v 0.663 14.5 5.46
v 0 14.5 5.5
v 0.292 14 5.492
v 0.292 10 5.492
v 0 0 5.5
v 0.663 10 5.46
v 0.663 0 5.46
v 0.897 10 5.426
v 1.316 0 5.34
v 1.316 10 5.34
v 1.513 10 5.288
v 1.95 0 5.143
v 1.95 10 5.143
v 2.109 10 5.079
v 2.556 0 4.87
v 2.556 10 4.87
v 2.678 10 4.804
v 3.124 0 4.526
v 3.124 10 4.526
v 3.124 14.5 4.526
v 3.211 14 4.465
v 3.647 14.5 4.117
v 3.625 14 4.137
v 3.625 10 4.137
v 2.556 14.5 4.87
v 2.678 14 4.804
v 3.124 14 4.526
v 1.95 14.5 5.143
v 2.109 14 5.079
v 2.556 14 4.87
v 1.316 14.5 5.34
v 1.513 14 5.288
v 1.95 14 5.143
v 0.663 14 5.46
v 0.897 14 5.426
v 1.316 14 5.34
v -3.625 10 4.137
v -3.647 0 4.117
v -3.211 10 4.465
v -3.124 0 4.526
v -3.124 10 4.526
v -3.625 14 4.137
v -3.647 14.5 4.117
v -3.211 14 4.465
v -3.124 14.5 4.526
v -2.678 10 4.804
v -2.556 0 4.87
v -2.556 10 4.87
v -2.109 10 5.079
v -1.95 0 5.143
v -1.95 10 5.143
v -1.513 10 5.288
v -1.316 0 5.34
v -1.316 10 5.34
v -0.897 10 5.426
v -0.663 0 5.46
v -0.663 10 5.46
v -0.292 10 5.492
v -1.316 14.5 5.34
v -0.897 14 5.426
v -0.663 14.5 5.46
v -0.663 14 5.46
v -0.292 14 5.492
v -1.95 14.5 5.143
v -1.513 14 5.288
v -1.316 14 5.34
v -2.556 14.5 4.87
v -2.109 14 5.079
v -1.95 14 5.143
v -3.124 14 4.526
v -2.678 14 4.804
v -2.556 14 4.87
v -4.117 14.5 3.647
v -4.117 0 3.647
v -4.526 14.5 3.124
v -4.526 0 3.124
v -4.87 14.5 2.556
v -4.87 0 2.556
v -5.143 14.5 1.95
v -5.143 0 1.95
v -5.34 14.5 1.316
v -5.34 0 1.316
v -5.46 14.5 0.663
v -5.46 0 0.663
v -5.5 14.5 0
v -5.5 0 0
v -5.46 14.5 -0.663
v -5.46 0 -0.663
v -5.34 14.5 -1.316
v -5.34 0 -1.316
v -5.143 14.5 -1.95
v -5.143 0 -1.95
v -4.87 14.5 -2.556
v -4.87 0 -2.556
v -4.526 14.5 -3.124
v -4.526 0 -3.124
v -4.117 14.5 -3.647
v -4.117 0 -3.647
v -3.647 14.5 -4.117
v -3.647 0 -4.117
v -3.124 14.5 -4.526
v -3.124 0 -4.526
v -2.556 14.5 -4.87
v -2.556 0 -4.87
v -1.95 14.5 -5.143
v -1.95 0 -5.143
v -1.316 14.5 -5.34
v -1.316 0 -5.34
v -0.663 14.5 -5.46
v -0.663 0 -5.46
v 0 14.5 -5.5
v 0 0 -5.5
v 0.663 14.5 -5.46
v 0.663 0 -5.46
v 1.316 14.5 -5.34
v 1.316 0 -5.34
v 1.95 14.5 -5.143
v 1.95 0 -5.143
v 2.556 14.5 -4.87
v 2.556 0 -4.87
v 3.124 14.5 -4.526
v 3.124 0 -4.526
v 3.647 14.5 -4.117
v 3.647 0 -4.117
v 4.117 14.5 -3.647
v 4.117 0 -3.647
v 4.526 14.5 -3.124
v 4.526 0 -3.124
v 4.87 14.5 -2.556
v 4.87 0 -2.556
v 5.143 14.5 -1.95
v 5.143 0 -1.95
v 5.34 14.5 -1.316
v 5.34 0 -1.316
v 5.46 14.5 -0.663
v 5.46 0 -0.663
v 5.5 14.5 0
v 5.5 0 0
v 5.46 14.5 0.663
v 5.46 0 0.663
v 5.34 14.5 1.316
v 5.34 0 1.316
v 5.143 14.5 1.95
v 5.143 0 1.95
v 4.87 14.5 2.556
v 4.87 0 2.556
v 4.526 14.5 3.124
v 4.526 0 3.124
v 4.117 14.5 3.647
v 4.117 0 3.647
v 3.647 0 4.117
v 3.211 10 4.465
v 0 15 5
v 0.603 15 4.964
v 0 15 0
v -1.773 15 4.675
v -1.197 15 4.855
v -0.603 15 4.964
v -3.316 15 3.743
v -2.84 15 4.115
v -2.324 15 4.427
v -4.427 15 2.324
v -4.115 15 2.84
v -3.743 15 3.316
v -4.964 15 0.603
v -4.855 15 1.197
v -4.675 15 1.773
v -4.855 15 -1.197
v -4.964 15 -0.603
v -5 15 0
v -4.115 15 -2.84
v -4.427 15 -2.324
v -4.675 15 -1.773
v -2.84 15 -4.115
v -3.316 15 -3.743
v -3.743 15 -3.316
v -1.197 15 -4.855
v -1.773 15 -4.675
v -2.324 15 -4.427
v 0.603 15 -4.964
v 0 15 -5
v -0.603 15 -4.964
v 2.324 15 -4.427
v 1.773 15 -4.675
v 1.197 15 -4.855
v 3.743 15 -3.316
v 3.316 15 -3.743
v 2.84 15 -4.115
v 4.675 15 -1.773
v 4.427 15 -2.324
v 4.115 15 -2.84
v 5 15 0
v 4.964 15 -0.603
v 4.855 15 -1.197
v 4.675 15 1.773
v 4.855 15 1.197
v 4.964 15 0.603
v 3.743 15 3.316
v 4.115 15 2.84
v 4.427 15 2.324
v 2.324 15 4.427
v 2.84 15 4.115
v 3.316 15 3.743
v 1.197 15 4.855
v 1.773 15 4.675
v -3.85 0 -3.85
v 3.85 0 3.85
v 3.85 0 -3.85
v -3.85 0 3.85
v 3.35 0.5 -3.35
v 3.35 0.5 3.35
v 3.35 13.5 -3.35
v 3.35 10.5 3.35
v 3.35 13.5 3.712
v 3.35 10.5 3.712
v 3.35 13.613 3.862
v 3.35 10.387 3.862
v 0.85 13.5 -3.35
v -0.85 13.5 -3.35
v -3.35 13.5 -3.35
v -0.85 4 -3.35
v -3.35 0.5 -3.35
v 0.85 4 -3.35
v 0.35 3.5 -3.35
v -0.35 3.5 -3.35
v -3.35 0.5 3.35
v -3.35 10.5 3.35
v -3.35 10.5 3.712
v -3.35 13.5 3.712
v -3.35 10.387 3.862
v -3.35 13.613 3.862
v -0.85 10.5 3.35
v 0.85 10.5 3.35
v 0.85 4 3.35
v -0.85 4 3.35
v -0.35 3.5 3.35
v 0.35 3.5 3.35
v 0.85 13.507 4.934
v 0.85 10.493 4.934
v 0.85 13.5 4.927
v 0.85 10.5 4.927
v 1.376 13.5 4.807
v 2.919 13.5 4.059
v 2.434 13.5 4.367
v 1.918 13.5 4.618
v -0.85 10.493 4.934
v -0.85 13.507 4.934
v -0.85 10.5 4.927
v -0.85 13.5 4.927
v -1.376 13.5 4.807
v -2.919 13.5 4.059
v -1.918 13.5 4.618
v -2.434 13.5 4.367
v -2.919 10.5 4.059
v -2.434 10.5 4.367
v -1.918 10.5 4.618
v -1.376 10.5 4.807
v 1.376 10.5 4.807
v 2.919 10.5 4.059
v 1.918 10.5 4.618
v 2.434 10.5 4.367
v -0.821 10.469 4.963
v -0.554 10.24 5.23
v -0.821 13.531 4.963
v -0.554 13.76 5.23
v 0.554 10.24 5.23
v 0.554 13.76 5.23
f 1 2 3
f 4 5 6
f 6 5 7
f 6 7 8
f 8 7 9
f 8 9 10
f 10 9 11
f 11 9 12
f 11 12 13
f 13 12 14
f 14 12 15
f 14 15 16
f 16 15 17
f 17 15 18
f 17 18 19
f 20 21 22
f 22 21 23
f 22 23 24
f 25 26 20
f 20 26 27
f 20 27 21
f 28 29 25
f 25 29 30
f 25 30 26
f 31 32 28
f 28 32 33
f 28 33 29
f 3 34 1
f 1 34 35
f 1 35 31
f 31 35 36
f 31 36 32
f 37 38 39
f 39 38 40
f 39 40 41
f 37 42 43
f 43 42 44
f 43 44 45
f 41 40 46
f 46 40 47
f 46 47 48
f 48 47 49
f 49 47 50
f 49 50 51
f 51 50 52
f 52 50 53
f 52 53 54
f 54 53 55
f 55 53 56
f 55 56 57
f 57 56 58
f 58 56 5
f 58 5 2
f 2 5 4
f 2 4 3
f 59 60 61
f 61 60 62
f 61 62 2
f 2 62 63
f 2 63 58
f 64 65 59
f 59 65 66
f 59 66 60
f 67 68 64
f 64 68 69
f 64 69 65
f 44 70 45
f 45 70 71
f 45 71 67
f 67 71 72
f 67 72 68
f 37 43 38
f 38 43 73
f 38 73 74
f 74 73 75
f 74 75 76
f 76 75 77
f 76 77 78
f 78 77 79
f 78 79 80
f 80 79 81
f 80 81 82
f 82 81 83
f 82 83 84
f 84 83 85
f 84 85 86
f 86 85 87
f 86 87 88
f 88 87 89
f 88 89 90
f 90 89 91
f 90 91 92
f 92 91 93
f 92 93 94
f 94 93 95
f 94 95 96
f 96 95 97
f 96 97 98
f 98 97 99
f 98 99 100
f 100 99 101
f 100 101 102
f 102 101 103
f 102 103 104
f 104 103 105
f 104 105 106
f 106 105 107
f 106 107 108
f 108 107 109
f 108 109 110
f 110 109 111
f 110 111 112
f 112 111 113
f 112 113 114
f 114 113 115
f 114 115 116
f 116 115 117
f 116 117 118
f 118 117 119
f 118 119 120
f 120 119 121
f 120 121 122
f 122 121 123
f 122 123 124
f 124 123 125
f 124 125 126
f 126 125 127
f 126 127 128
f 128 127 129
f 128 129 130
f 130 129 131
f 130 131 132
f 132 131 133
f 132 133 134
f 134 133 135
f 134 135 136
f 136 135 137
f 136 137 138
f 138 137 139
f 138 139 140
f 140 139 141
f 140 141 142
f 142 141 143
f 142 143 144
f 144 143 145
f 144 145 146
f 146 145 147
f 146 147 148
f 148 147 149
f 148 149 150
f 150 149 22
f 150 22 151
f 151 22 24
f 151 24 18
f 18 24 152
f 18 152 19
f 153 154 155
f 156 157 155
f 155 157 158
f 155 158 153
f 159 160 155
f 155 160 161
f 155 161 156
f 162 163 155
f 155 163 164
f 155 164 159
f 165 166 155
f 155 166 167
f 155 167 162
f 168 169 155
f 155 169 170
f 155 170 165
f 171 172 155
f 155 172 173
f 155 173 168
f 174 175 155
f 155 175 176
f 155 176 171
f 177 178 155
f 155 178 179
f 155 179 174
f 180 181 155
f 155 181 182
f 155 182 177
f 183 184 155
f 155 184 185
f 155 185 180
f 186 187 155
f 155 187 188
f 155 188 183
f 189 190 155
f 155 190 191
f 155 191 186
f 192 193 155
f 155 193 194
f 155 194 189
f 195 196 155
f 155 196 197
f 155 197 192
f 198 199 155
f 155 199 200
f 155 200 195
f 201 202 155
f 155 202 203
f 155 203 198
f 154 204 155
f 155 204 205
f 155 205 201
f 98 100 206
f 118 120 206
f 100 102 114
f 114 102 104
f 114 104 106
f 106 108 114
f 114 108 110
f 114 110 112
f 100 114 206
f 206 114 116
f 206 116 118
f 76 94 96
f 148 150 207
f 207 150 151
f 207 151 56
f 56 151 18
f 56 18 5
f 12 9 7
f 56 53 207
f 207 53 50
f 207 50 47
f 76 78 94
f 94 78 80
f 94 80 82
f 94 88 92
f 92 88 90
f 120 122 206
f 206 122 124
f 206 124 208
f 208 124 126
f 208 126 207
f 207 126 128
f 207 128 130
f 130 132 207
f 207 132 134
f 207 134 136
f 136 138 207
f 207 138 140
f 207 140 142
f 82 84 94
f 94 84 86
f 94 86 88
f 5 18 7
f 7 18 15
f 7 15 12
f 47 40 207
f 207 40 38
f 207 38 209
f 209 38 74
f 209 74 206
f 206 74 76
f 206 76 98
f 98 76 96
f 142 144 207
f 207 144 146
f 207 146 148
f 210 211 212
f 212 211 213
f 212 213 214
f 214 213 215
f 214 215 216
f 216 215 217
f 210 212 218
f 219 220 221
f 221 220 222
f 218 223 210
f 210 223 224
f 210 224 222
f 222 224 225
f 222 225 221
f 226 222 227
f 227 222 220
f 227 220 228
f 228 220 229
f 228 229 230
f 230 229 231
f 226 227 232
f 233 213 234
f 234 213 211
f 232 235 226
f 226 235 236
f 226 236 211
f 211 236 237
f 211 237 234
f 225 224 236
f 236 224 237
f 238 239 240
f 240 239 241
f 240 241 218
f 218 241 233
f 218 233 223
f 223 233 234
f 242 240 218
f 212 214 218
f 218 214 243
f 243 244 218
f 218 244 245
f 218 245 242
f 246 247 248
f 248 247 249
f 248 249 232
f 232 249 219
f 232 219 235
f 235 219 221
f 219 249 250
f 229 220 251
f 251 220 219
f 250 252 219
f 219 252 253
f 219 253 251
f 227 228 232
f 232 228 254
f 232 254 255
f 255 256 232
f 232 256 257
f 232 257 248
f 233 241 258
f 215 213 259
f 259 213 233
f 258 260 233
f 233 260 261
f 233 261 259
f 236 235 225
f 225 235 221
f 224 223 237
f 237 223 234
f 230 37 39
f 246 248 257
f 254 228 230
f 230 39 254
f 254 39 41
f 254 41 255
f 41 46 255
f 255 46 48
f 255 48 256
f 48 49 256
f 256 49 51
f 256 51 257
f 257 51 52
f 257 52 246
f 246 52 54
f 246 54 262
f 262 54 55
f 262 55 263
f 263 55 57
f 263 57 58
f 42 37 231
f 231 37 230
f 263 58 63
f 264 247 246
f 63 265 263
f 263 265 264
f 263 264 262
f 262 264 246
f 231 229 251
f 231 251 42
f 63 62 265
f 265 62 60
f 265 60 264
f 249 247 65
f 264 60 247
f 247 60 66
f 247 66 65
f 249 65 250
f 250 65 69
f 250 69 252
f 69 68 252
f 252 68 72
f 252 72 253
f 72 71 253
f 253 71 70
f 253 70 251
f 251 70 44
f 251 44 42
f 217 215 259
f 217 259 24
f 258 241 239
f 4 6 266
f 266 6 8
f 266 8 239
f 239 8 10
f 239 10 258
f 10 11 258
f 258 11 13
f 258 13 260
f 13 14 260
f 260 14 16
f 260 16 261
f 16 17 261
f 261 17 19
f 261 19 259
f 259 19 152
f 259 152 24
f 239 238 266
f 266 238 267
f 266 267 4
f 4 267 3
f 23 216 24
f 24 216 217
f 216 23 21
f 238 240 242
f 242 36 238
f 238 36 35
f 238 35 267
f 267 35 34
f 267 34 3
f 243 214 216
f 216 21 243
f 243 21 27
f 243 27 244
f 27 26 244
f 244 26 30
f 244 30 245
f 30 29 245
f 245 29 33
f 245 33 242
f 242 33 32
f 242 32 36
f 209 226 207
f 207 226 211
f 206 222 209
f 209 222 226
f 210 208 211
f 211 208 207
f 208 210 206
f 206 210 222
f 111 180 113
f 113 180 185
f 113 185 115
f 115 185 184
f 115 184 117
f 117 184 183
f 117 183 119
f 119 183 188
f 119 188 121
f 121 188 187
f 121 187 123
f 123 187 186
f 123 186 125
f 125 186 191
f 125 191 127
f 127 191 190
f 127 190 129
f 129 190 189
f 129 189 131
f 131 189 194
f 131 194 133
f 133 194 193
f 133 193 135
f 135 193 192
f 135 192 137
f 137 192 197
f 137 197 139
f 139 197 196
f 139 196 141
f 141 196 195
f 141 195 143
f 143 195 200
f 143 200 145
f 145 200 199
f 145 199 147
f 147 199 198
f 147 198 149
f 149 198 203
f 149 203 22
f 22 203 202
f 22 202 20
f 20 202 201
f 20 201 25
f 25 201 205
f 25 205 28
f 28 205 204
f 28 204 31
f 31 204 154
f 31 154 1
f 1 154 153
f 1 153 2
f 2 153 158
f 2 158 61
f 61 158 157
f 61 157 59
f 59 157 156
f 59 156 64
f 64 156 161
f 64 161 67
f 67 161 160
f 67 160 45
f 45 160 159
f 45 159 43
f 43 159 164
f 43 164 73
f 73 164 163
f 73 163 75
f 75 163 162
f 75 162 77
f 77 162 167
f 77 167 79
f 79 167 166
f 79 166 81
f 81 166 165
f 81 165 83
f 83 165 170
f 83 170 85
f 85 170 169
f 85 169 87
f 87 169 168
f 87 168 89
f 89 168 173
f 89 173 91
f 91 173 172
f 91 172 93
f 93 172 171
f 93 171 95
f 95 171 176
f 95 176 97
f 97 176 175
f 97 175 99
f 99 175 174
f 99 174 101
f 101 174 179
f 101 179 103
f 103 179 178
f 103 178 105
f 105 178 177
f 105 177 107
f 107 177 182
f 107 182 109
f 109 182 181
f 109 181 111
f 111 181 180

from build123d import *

# Parameters (mm, degrees)
SKETCH1_R           = 5.5
BOSS_EXTRUDE1_DEPTH = 15
SKETCH2_W           = 6.7
SKETCH2_H           = 6.7
CUT_EXTRUDE1_DEPTH  = 3.5
SKETCH3_W           = 2.5
SKETCH3_H           = 6.7
CUT_EXTRUDE2_DEPTH  = 10
SKETCH4_W           = 2.5
SKETCH4_H           = 3
CUT_EXTRUDE3_DEPTH  = 19.263967258
CHAMFER1_SIZE       = 0.5
CHAMFER2_SIZE       = 0.5


with BuildPart() as part:
    # Sketch1 → Boss-Extrude1 (new body)
    with BuildSketch(Plane(origin=(0, 0, 0), x_dir=(1, 0, 0), z_dir=(0, 1, 0))):
        with Locations(Location((0, 0, 0), (0, 0, 270))):
            Circle(SKETCH1_R)
    extrude(amount=BOSS_EXTRUDE1_DEPTH)

    # Sketch2 → Cut-Extrude1 (cut)
    with BuildSketch(Plane.XZ):
        Rectangle(SKETCH2_W, SKETCH2_H)
    extrude(amount=-CUT_EXTRUDE1_DEPTH, mode=Mode.SUBTRACT)

    # Sketch3 → Cut-Extrude2 (cut)
    with BuildSketch(Plane.XZ.offset(-3.5)):
        with Locations((-2.1, 0)):
            Rectangle(SKETCH3_W, SKETCH3_H)
        with Locations((2.1, 0)):
            Rectangle(SKETCH3_W, SKETCH3_H)
    extrude(amount=-CUT_EXTRUDE2_DEPTH, mode=Mode.SUBTRACT)

    # Sketch4 → Cut-Extrude3 (cut, through all)
    with BuildSketch(Plane(origin=(0, 0, 3.35), x_dir=(-1, 0, 0), z_dir=(0, 0, -1))):
        with Locations((2.1, 12)):
            Rectangle(SKETCH4_W, SKETCH4_H)
        with Locations((-2.1, 12)):
            Rectangle(SKETCH4_W, SKETCH4_H)
    extrude(amount=-CUT_EXTRUDE3_DEPTH, mode=Mode.SUBTRACT)

    # Chamfer1
    # the kernel refuses this chamfer: 0.599923048, 0.5, 0.35658472 mm, written as the material it takes off along each edge
    with BuildSketch(Plane(origin=(3.35, 0, -3.35), x_dir=(0, 1, 0), z_dir=(-1, 0, 0)), Plane(origin=(0.85, 3.5, 3.35), x_dir=(-1, 0, 0), z_dir=(0, 0, -1)), Plane(origin=(3.35, 0, 3.35), x_dir=(0, 1, 0), z_dir=(0, 0, -1)), Plane(origin=(-3.35, 0, 3.35), x_dir=(0, 1, 0), z_dir=(1, 0, 0)), Plane(origin=(-3.35, 0, -3.35), x_dir=(0, 1, 0), z_dir=(0, 0, 1))) as chamfer1_piece_1:
        Polygon((CHAMFER1_SIZE, 0), (0, CHAMFER1_SIZE), (0, 0), align=None)
    extrude(amount=6.7, mode=Mode.SUBTRACT)
    with BuildSketch(Plane(origin=(-0.85, 3.5, 3.35), x_dir=(1, 0, 0), z_dir=(0, 0, -1))) as chamfer1_piece_2:
        Polygon((CHAMFER1_SIZE, 0), (0, -CHAMFER1_SIZE), (0, 0), align=None)
    extrude(amount=6.7, mode=Mode.SUBTRACT)
    with BuildSketch(Plane(origin=(-3.35, 13.5, 4.362052269), x_dir=(-0.7730150093099369, 0, -0.6343877326852705), z_dir=(0, -1, 0))) as chamfer1_piece_3:
        with BuildLine():
            Line((0.355264336, 0), (CHAMFER1_SIZE * 0.634387732685, CHAMFER1_SIZE * 0.77301500931))
            Line((CHAMFER1_SIZE * 0.634387732685, CHAMFER1_SIZE * 0.77301500931), (0, 0))
            ThreePointArc((0, 0), (0.17861115, -0.002869133), (0.355264336, 0))
        make_face()
    extrude(amount=3, mode=Mode.SUBTRACT)
    with BuildSketch(Plane(origin=(-0.85, 13.5, 5.433921236), x_dir=(0.9945853784930031, 0, 0.10392268707038738), z_dir=(0, -1, 0))) as chamfer1_piece_4:
        with BuildLine():
            Line((0.561379751, 0), (-CHAMFER1_SIZE * 0.10392268707, -CHAMFER1_SIZE * 0.994585378493))
            Line((-CHAMFER1_SIZE * 0.10392268707, -CHAMFER1_SIZE * 0.994585378493), (0, 0))
            ThreePointArc((0, 0), (0.290009157, 0.007159211), (0.561379751, 0))
        make_face()
    extrude(amount=3, mode=Mode.SUBTRACT)
    with BuildSketch(Plane(origin=(0.85, 13.5, 5.433921236), x_dir=(-0.9945853784930031, 0, 0.10392268707038782), z_dir=(0, -1, 0))) as chamfer1_piece_5:
        with BuildLine():
            Line((0.561379751, 0), (-CHAMFER1_SIZE * 0.10392268707, CHAMFER1_SIZE * 0.994585378493))
            Line((-CHAMFER1_SIZE * 0.10392268707, CHAMFER1_SIZE * 0.994585378493), (0, 0))
            ThreePointArc((0, 0), (0.290009157, -0.007159211), (0.561379751, 0))
        make_face()
    extrude(amount=3, mode=Mode.SUBTRACT)
    with BuildSketch(Plane(origin=(3.35, 13.5, 4.362052269), x_dir=(0.7730150093099386, 0, -0.6343877326852684), z_dir=(0, -1, 0))) as chamfer1_piece_6:
        with BuildLine():
            Line((0.355264336, 0), (CHAMFER1_SIZE * 0.634387732685, -CHAMFER1_SIZE * 0.77301500931))
            Line((CHAMFER1_SIZE * 0.634387732685, -CHAMFER1_SIZE * 0.77301500931), (0, 0))
            ThreePointArc((0, 0), (0.17861115, 0.002869133), (0.355264336, 0))
        make_face()
    extrude(amount=3, mode=Mode.SUBTRACT)
    with BuildSketch(Plane(origin=(4.635841494, 0, -3.35), x_dir=(0, 1, 0), z_dir=(-1, 0, 0))) as chamfer1_piece_7a_section:
        Polygon((CHAMFER1_SIZE, 0), (0, CHAMFER1_SIZE), (0, 0), align=None)
    chamfer1_piece_7a = extrude(amount=7.985841494, mode=Mode.PRIVATE)
    chamfer1_piece_7a = chamfer1_piece_7a & Plane(origin=(0, 0, 0), x_dir=(0, 0, 1), z_dir=(0, -1, 0)) * Cylinder(5.5, 18, mode=Mode.PRIVATE)
    chamfer1_piece_7a = split(chamfer1_piece_7a, bisect_by=Plane(origin=(3.35, 0, -3.35), z_dir=(1, 0, 0)), keep=Keep.TOP, mode=Mode.PRIVATE)
    with BuildSketch(Plane(origin=(3.35, 0, 3.35), x_dir=(0, 1, 0), z_dir=(0, 0, -1))) as chamfer1_piece_7b_section:
        Polygon((CHAMFER1_SIZE, 0), (0, CHAMFER1_SIZE), (0, 0), align=None)
    chamfer1_piece_7b = extrude(amount=7.985841494, mode=Mode.PRIVATE)
    chamfer1_piece_7b = chamfer1_piece_7b & Plane(origin=(0, 0, 0), x_dir=(0, 0, 1), z_dir=(0, -1, 0)) * Cylinder(5.5, 18, mode=Mode.PRIVATE)
    chamfer1_piece_7b = split(chamfer1_piece_7b, bisect_by=Plane(origin=(3.35, 0, -3.35), z_dir=(0, 0, -1)), keep=Keep.TOP, mode=Mode.PRIVATE)
    chamfer1_piece_7 = chamfer1_piece_7a & chamfer1_piece_7b
    add(chamfer1_piece_7, mode=Mode.SUBTRACT)
    with BuildSketch(Plane(origin=(3.35, 0, -3.35), x_dir=(0, 1, 0), z_dir=(-1, 0, 0))) as chamfer1_piece_8a_section:
        Polygon((CHAMFER1_SIZE, 0), (0, CHAMFER1_SIZE), (0, 0), align=None)
    chamfer1_piece_8a = extrude(amount=7.985841494, mode=Mode.PRIVATE)
    chamfer1_piece_8a = chamfer1_piece_8a & Plane(origin=(0, 0, 0), x_dir=(0, 0, 1), z_dir=(0, -1, 0)) * Cylinder(5.5, 18, mode=Mode.PRIVATE)
    chamfer1_piece_8a = split(chamfer1_piece_8a, bisect_by=Plane(origin=(-3.35, 0, -3.35), z_dir=(-1, 0, 0)), keep=Keep.TOP, mode=Mode.PRIVATE)
    with BuildSketch(Plane(origin=(-3.35, 0, -4.635841494), x_dir=(0, 1, 0), z_dir=(0, 0, 1))) as chamfer1_piece_8b_section:
        Polygon((CHAMFER1_SIZE, 0), (0, CHAMFER1_SIZE), (0, 0), align=None)
    chamfer1_piece_8b = extrude(amount=7.985841494, mode=Mode.PRIVATE)
    chamfer1_piece_8b = chamfer1_piece_8b & Plane(origin=(0, 0, 0), x_dir=(0, 0, 1), z_dir=(0, -1, 0)) * Cylinder(5.5, 18, mode=Mode.PRIVATE)
    chamfer1_piece_8b = split(chamfer1_piece_8b, bisect_by=Plane(origin=(-3.35, 0, -3.35), z_dir=(0, 0, -1)), keep=Keep.TOP, mode=Mode.PRIVATE)
    chamfer1_piece_8 = chamfer1_piece_8a & chamfer1_piece_8b
    add(chamfer1_piece_8, mode=Mode.SUBTRACT)
    with BuildSketch(Plane(origin=(-3.35, 0, 3.35), x_dir=(0, 1, 0), z_dir=(1, 0, 0))) as chamfer1_piece_9a_section:
        Polygon((CHAMFER1_SIZE, 0), (0, CHAMFER1_SIZE), (0, 0), align=None)
    chamfer1_piece_9a = extrude(amount=7.985841494, mode=Mode.PRIVATE)
    chamfer1_piece_9a = chamfer1_piece_9a & Plane(origin=(0, 0, 0), x_dir=(0, 0, 1), z_dir=(0, -1, 0)) * Cylinder(5.5, 18, mode=Mode.PRIVATE)
    chamfer1_piece_9a = split(chamfer1_piece_9a, bisect_by=Plane(origin=(3.35, 0, 3.35), z_dir=(1, 0, 0)), keep=Keep.TOP, mode=Mode.PRIVATE)
    with BuildSketch(Plane(origin=(3.35, 0, 4.635841494), x_dir=(0, 1, 0), z_dir=(0, 0, -1))) as chamfer1_piece_9b_section:
        Polygon((CHAMFER1_SIZE, 0), (0, CHAMFER1_SIZE), (0, 0), align=None)
    chamfer1_piece_9b = extrude(amount=7.985841494, mode=Mode.PRIVATE)
    chamfer1_piece_9b = chamfer1_piece_9b & Plane(origin=(0, 0, 0), x_dir=(0, 0, 1), z_dir=(0, -1, 0)) * Cylinder(5.5, 18, mode=Mode.PRIVATE)
    chamfer1_piece_9b = split(chamfer1_piece_9b, bisect_by=Plane(origin=(3.35, 0, 3.35), z_dir=(0, 0, 1)), keep=Keep.TOP, mode=Mode.PRIVATE)
    chamfer1_piece_9 = chamfer1_piece_9a & chamfer1_piece_9b
    add(chamfer1_piece_9, mode=Mode.SUBTRACT)
    with BuildSketch(Plane(origin=(-4.635841494, 0, 3.35), x_dir=(0, 1, 0), z_dir=(1, 0, 0))) as chamfer1_piece_10a_section:
        Polygon((CHAMFER1_SIZE, 0), (0, CHAMFER1_SIZE), (0, 0), align=None)
    chamfer1_piece_10a = extrude(amount=7.985841494, mode=Mode.PRIVATE)
    chamfer1_piece_10a = chamfer1_piece_10a & Plane(origin=(0, 0, 0), x_dir=(0, 0, 1), z_dir=(0, -1, 0)) * Cylinder(5.5, 18, mode=Mode.PRIVATE)
    chamfer1_piece_10a = split(chamfer1_piece_10a, bisect_by=Plane(origin=(-3.35, 0, 3.35), z_dir=(-1, 0, 0)), keep=Keep.TOP, mode=Mode.PRIVATE)
    with BuildSketch(Plane(origin=(-3.35, 0, -3.35), x_dir=(0, 1, 0), z_dir=(0, 0, 1))) as chamfer1_piece_10b_section:
        Polygon((CHAMFER1_SIZE, 0), (0, CHAMFER1_SIZE), (0, 0), align=None)
    chamfer1_piece_10b = extrude(amount=7.985841494, mode=Mode.PRIVATE)
    chamfer1_piece_10b = chamfer1_piece_10b & Plane(origin=(0, 0, 0), x_dir=(0, 0, 1), z_dir=(0, -1, 0)) * Cylinder(5.5, 18, mode=Mode.PRIVATE)
    chamfer1_piece_10b = split(chamfer1_piece_10b, bisect_by=Plane(origin=(-3.35, 0, 3.35), z_dir=(0, 0, 1)), keep=Keep.TOP, mode=Mode.PRIVATE)
    chamfer1_piece_10 = chamfer1_piece_10a & chamfer1_piece_10b
    add(chamfer1_piece_10, mode=Mode.SUBTRACT)
    # the kernel refuses this chamfer: 0.599923048, 0.5, 0.35658472 mm, written as the material it takes off along each edge
    with BuildSketch(Plane(origin=(0, 10.5, 0), x_dir=(0.17976967386788098, 0, 0.9837087294303308), z_dir=(0.9837087294303308, 0, -0.17976967386788098))) as chamfer1_2_piece_1_section:
        Polygon((5.5, CHAMFER1_SIZE), (5.5 - CHAMFER1_SIZE, 0), (5.5, 0), align=None)
    chamfer1_2_piece_1 = revolve(axis=Axis((0, 10.5, 0), (0, -1, 0)), revolution_arc=64.977834745, mode=Mode.PRIVATE)
    chamfer1_2_piece_1 = split(chamfer1_2_piece_1, bisect_by=Plane(origin=(2.891960618, 10.5, 2.891960618), z_dir=(0.707106781186547, 0, 0.7071067811865481)), keep=Keep.TOP, mode=Mode.PRIVATE)
    add(chamfer1_2_piece_1, mode=Mode.SUBTRACT)
    with BuildSketch(Plane(origin=(0, 10.5, 0), x_dir=(0.17976967386788098, 0, 0.9837087294303308), z_dir=(0.9837087294303308, 0, -0.17976967386788098))) as chamfer1_2_piece_2_section:
        Polygon((5.5, CHAMFER1_SIZE), (5.5 - CHAMFER1_SIZE, 0), (5.5, 0), align=None)
    chamfer1_2_piece_2 = revolve(axis=Axis((0, 10.5, 0), (0, -1, 0)), revolution_arc=64.977834745, mode=Mode.PRIVATE)
    chamfer1_2_piece_2 = split(chamfer1_2_piece_2, bisect_by=Plane(origin=(0.85, 10.5, 0), z_dir=(1, 0, 0)), keep=Keep.TOP, mode=Mode.PRIVATE)
    add(chamfer1_2_piece_2, mode=Mode.SUBTRACT)
    with BuildSketch(Plane(origin=(0, 10.5, 0), x_dir=(0.17976967386788098, 0, 0.9837087294303308), z_dir=(0.9837087294303308, 0, -0.17976967386788098))) as chamfer1_2_piece_3_section:
        Polygon((5.5, CHAMFER1_SIZE), (5.5 - CHAMFER1_SIZE, 0), (5.5, 0), align=None)
    chamfer1_2_piece_3 = revolve(axis=Axis((0, 10.5, 0), (0, -1, 0)), revolution_arc=64.977834745, mode=Mode.PRIVATE)
    chamfer1_2_piece_3 = split(chamfer1_2_piece_3, bisect_by=Plane(origin=(-0.85, 10.5, 0), z_dir=(-1, 0, 0)), keep=Keep.TOP, mode=Mode.PRIVATE)
    chamfer1_2_piece_3 = split(chamfer1_2_piece_3, bisect_by=Plane(origin=(0.256026135, 10.5, 0.256026135), z_dir=(0.7071067811865424, 0, 0.7071067811865527)), keep=Keep.TOP, mode=Mode.PRIVATE)
    add(chamfer1_2_piece_3, mode=Mode.SUBTRACT)
    with BuildSketch(Plane(origin=(0, 10.5, 0), x_dir=(0.17976967386788098, 0, 0.9837087294303308), z_dir=(0.9837087294303308, 0, -0.17976967386788098))) as chamfer1_2_piece_4_section:
        Polygon((5.5, CHAMFER1_SIZE), (5.5 - CHAMFER1_SIZE, 0), (5.5, 0), align=None)
    chamfer1_2_piece_4 = revolve(axis=Axis((0, 10.5, 0), (0, -1, 0)), revolution_arc=64.977834745, mode=Mode.PRIVATE)
    chamfer1_2_piece_4 = split(chamfer1_2_piece_4, bisect_by=Plane(origin=(-3.35, 10.5, 0), z_dir=(1, 0, 0)), keep=Keep.TOP, mode=Mode.PRIVATE)
    chamfer1_2_piece_4 = split(chamfer1_2_piece_4, bisect_by=Plane(origin=(-2.891960618, 10.5, 2.891960618), z_dir=(-0.7071067811865455, 0, 0.7071067811865496)), keep=Keep.TOP, mode=Mode.PRIVATE)
    add(chamfer1_2_piece_4, mode=Mode.SUBTRACT)
    with BuildSketch(Plane(origin=(0, 13.5, 0), x_dir=(-0.8153450150908111, 0, 0.57897539357607), z_dir=(-0.57897539357607, 0, -0.8153450150908111))) as chamfer1_2_piece_5_section:
        Polygon((5.5, CHAMFER1_SIZE), (5.5 - CHAMFER1_SIZE, 0), (5.5, 0), align=None)
    chamfer1_2_piece_5 = revolve(axis=Axis((0, 13.5, 0), (0, 1, 0)), revolution_arc=64.977834745, mode=Mode.PRIVATE)
    chamfer1_2_piece_5 = split(chamfer1_2_piece_5, bisect_by=Plane(origin=(-3.35, 13.5, 0), z_dir=(1, 0, 0)), keep=Keep.TOP, mode=Mode.PRIVATE)
    chamfer1_2_piece_5 = split(chamfer1_2_piece_5, bisect_by=Plane(origin=(-2.891960618, 13.5, 2.891960618), z_dir=(-0.7071067811865455, 0, 0.7071067811865496)), keep=Keep.TOP, mode=Mode.PRIVATE)
    add(chamfer1_2_piece_5, mode=Mode.SUBTRACT)
    with BuildSketch(Plane(origin=(0, 13.5, 0), x_dir=(-0.8153450150908111, 0, 0.57897539357607), z_dir=(-0.57897539357607, 0, -0.8153450150908111))) as chamfer1_2_piece_6_section:
        Polygon((5.5, CHAMFER1_SIZE), (5.5 - CHAMFER1_SIZE, 0), (5.5, 0), align=None)
    chamfer1_2_piece_6 = revolve(axis=Axis((0, 13.5, 0), (0, 1, 0)), revolution_arc=64.977834745, mode=Mode.PRIVATE)
    chamfer1_2_piece_6 = split(chamfer1_2_piece_6, bisect_by=Plane(origin=(-0.85, 13.5, 0), z_dir=(-1, 0, 0)), keep=Keep.TOP, mode=Mode.PRIVATE)
    chamfer1_2_piece_6 = split(chamfer1_2_piece_6, bisect_by=Plane(origin=(0.256026135, 13.5, 0.256026135), z_dir=(0.7071067811865424, 0, 0.7071067811865527)), keep=Keep.TOP, mode=Mode.PRIVATE)
    add(chamfer1_2_piece_6, mode=Mode.SUBTRACT)
    with BuildSketch(Plane(origin=(0, 13.5, 0), x_dir=(-0.8153450150908111, 0, 0.57897539357607), z_dir=(-0.57897539357607, 0, -0.8153450150908111))) as chamfer1_2_piece_7_section:
        Polygon((5.5, CHAMFER1_SIZE), (5.5 - CHAMFER1_SIZE, 0), (5.5, 0), align=None)
    chamfer1_2_piece_7 = revolve(axis=Axis((0, 13.5, 0), (0, 1, 0)), revolution_arc=64.977834745, mode=Mode.PRIVATE)
    chamfer1_2_piece_7 = split(chamfer1_2_piece_7, bisect_by=Plane(origin=(0.85, 13.5, 0), z_dir=(1, 0, 0)), keep=Keep.TOP, mode=Mode.PRIVATE)
    add(chamfer1_2_piece_7, mode=Mode.SUBTRACT)
    with BuildSketch(Plane(origin=(0, 13.5, 0), x_dir=(-0.8153450150908111, 0, 0.57897539357607), z_dir=(-0.57897539357607, 0, -0.8153450150908111))) as chamfer1_2_piece_8_section:
        Polygon((5.5, CHAMFER1_SIZE), (5.5 - CHAMFER1_SIZE, 0), (5.5, 0), align=None)
    chamfer1_2_piece_8 = revolve(axis=Axis((0, 13.5, 0), (0, 1, 0)), revolution_arc=64.977834745, mode=Mode.PRIVATE)
    chamfer1_2_piece_8 = split(chamfer1_2_piece_8, bisect_by=Plane(origin=(2.891960618, 13.5, 2.891960618), z_dir=(0.707106781186547, 0, 0.7071067811865481)), keep=Keep.TOP, mode=Mode.PRIVATE)
    add(chamfer1_2_piece_8, mode=Mode.SUBTRACT)
    with BuildSketch(Plane(origin=(0, 13.5, 0), x_dir=(-0.17976967386788484, 0, 0.98370872943033), z_dir=(-0.98370872943033, 0, -0.17976967386788484))) as chamfer1_2_piece_9_section:
        Polygon((5.5, CHAMFER1_SIZE), (5.5 - CHAMFER1_SIZE, 0), (5.5, 0), align=None)
    chamfer1_2_piece_9 = revolve(axis=Axis((0, 13.5, 0), (0, 1, 0)), revolution_arc=64.977834745, mode=Mode.PRIVATE)
    chamfer1_2_piece_9 = split(chamfer1_2_piece_9, bisect_by=Plane(origin=(-2.891960618, 13.5, 2.891960618), z_dir=(-0.7071067811865455, 0, 0.7071067811865496)), keep=Keep.TOP, mode=Mode.PRIVATE)
    add(chamfer1_2_piece_9, mode=Mode.SUBTRACT)
    with BuildSketch(Plane(origin=(0, 13.5, 0), x_dir=(-0.17976967386788484, 0, 0.98370872943033), z_dir=(-0.98370872943033, 0, -0.17976967386788484))) as chamfer1_2_piece_10_section:
        Polygon((5.5, CHAMFER1_SIZE), (5.5 - CHAMFER1_SIZE, 0), (5.5, 0), align=None)
    chamfer1_2_piece_10 = revolve(axis=Axis((0, 13.5, 0), (0, 1, 0)), revolution_arc=64.977834745, mode=Mode.PRIVATE)
    chamfer1_2_piece_10 = split(chamfer1_2_piece_10, bisect_by=Plane(origin=(-0.85, 13.5, 0), z_dir=(-1, 0, 0)), keep=Keep.TOP, mode=Mode.PRIVATE)
    add(chamfer1_2_piece_10, mode=Mode.SUBTRACT)
    with BuildSketch(Plane(origin=(0, 13.5, 0), x_dir=(-0.17976967386788484, 0, 0.98370872943033), z_dir=(-0.98370872943033, 0, -0.17976967386788484))) as chamfer1_2_piece_11_section:
        Polygon((5.5, CHAMFER1_SIZE), (5.5 - CHAMFER1_SIZE, 0), (5.5, 0), align=None)
    chamfer1_2_piece_11 = revolve(axis=Axis((0, 13.5, 0), (0, 1, 0)), revolution_arc=64.977834745, mode=Mode.PRIVATE)
    chamfer1_2_piece_11 = split(chamfer1_2_piece_11, bisect_by=Plane(origin=(0.85, 13.5, 0), z_dir=(1, 0, 0)), keep=Keep.TOP, mode=Mode.PRIVATE)
    chamfer1_2_piece_11 = split(chamfer1_2_piece_11, bisect_by=Plane(origin=(-0.256026135, 13.5, 0.256026135), z_dir=(-0.7071067811865516, 0, 0.7071067811865436)), keep=Keep.TOP, mode=Mode.PRIVATE)
    add(chamfer1_2_piece_11, mode=Mode.SUBTRACT)
    with BuildSketch(Plane(origin=(0, 13.5, 0), x_dir=(-0.17976967386788484, 0, 0.98370872943033), z_dir=(-0.98370872943033, 0, -0.17976967386788484))) as chamfer1_2_piece_12_section:
        Polygon((5.5, CHAMFER1_SIZE), (5.5 - CHAMFER1_SIZE, 0), (5.5, 0), align=None)
    chamfer1_2_piece_12 = revolve(axis=Axis((0, 13.5, 0), (0, 1, 0)), revolution_arc=64.977834745, mode=Mode.PRIVATE)
    chamfer1_2_piece_12 = split(chamfer1_2_piece_12, bisect_by=Plane(origin=(3.35, 13.5, 0), z_dir=(-1, 0, 0)), keep=Keep.TOP, mode=Mode.PRIVATE)
    chamfer1_2_piece_12 = split(chamfer1_2_piece_12, bisect_by=Plane(origin=(2.891960618, 13.5, 2.891960618), z_dir=(0.707106781186547, 0, 0.7071067811865481)), keep=Keep.TOP, mode=Mode.PRIVATE)
    add(chamfer1_2_piece_12, mode=Mode.SUBTRACT)
    with BuildSketch(Plane(origin=(0, 10.5, 0), x_dir=(0.8153450150908462, 0, 0.5789753935760206), z_dir=(0.5789753935760206, 0, -0.8153450150908462))) as chamfer1_2_piece_13_section:
        Polygon((5.5, CHAMFER1_SIZE), (5.5 - CHAMFER1_SIZE, 0), (5.5, 0), align=None)
    chamfer1_2_piece_13 = revolve(axis=Axis((0, 10.5, 0), (0, -1, 0)), revolution_arc=64.977834745, mode=Mode.PRIVATE)
    chamfer1_2_piece_13 = split(chamfer1_2_piece_13, bisect_by=Plane(origin=(3.35, 10.5, 0), z_dir=(-1, 0, 0)), keep=Keep.TOP, mode=Mode.PRIVATE)
    chamfer1_2_piece_13 = split(chamfer1_2_piece_13, bisect_by=Plane(origin=(2.891960618, 10.5, 2.891960618), z_dir=(0.707106781186547, 0, 0.7071067811865481)), keep=Keep.TOP, mode=Mode.PRIVATE)
    add(chamfer1_2_piece_13, mode=Mode.SUBTRACT)
    with BuildSketch(Plane(origin=(0, 10.5, 0), x_dir=(0.8153450150908462, 0, 0.5789753935760206), z_dir=(0.5789753935760206, 0, -0.8153450150908462))) as chamfer1_2_piece_14_section:
        Polygon((5.5, CHAMFER1_SIZE), (5.5 - CHAMFER1_SIZE, 0), (5.5, 0), align=None)
    chamfer1_2_piece_14 = revolve(axis=Axis((0, 10.5, 0), (0, -1, 0)), revolution_arc=64.977834745, mode=Mode.PRIVATE)
    chamfer1_2_piece_14 = split(chamfer1_2_piece_14, bisect_by=Plane(origin=(0.85, 10.5, 0), z_dir=(1, 0, 0)), keep=Keep.TOP, mode=Mode.PRIVATE)
    chamfer1_2_piece_14 = split(chamfer1_2_piece_14, bisect_by=Plane(origin=(-0.256026135, 10.5, 0.256026135), z_dir=(-0.7071067811865516, 0, 0.7071067811865436)), keep=Keep.TOP, mode=Mode.PRIVATE)
    add(chamfer1_2_piece_14, mode=Mode.SUBTRACT)
    with BuildSketch(Plane(origin=(0, 10.5, 0), x_dir=(0.8153450150908462, 0, 0.5789753935760206), z_dir=(0.5789753935760206, 0, -0.8153450150908462))) as chamfer1_2_piece_15_section:
        Polygon((5.5, CHAMFER1_SIZE), (5.5 - CHAMFER1_SIZE, 0), (5.5, 0), align=None)
    chamfer1_2_piece_15 = revolve(axis=Axis((0, 10.5, 0), (0, -1, 0)), revolution_arc=64.977834745, mode=Mode.PRIVATE)
    chamfer1_2_piece_15 = split(chamfer1_2_piece_15, bisect_by=Plane(origin=(-0.85, 10.5, 0), z_dir=(-1, 0, 0)), keep=Keep.TOP, mode=Mode.PRIVATE)
    add(chamfer1_2_piece_15, mode=Mode.SUBTRACT)
    with BuildSketch(Plane(origin=(0, 10.5, 0), x_dir=(0.8153450150908462, 0, 0.5789753935760206), z_dir=(0.5789753935760206, 0, -0.8153450150908462))) as chamfer1_2_piece_16_section:
        Polygon((5.5, CHAMFER1_SIZE), (5.5 - CHAMFER1_SIZE, 0), (5.5, 0), align=None)
    chamfer1_2_piece_16 = revolve(axis=Axis((0, 10.5, 0), (0, -1, 0)), revolution_arc=64.977834745, mode=Mode.PRIVATE)
    chamfer1_2_piece_16 = split(chamfer1_2_piece_16, bisect_by=Plane(origin=(-2.891960618, 10.5, 2.891960618), z_dir=(-0.7071067811865455, 0, 0.7071067811865496)), keep=Keep.TOP, mode=Mode.PRIVATE)
    add(chamfer1_2_piece_16, mode=Mode.SUBTRACT)

    # Chamfer2
    chamfer2_edges = [part.edges().sort_by_distance(p)[0] for p in [
        (0, 15, -5.5),
    ]]
    chamfer(chamfer2_edges, length=CHAMFER2_SIZE)


solid = part.part
